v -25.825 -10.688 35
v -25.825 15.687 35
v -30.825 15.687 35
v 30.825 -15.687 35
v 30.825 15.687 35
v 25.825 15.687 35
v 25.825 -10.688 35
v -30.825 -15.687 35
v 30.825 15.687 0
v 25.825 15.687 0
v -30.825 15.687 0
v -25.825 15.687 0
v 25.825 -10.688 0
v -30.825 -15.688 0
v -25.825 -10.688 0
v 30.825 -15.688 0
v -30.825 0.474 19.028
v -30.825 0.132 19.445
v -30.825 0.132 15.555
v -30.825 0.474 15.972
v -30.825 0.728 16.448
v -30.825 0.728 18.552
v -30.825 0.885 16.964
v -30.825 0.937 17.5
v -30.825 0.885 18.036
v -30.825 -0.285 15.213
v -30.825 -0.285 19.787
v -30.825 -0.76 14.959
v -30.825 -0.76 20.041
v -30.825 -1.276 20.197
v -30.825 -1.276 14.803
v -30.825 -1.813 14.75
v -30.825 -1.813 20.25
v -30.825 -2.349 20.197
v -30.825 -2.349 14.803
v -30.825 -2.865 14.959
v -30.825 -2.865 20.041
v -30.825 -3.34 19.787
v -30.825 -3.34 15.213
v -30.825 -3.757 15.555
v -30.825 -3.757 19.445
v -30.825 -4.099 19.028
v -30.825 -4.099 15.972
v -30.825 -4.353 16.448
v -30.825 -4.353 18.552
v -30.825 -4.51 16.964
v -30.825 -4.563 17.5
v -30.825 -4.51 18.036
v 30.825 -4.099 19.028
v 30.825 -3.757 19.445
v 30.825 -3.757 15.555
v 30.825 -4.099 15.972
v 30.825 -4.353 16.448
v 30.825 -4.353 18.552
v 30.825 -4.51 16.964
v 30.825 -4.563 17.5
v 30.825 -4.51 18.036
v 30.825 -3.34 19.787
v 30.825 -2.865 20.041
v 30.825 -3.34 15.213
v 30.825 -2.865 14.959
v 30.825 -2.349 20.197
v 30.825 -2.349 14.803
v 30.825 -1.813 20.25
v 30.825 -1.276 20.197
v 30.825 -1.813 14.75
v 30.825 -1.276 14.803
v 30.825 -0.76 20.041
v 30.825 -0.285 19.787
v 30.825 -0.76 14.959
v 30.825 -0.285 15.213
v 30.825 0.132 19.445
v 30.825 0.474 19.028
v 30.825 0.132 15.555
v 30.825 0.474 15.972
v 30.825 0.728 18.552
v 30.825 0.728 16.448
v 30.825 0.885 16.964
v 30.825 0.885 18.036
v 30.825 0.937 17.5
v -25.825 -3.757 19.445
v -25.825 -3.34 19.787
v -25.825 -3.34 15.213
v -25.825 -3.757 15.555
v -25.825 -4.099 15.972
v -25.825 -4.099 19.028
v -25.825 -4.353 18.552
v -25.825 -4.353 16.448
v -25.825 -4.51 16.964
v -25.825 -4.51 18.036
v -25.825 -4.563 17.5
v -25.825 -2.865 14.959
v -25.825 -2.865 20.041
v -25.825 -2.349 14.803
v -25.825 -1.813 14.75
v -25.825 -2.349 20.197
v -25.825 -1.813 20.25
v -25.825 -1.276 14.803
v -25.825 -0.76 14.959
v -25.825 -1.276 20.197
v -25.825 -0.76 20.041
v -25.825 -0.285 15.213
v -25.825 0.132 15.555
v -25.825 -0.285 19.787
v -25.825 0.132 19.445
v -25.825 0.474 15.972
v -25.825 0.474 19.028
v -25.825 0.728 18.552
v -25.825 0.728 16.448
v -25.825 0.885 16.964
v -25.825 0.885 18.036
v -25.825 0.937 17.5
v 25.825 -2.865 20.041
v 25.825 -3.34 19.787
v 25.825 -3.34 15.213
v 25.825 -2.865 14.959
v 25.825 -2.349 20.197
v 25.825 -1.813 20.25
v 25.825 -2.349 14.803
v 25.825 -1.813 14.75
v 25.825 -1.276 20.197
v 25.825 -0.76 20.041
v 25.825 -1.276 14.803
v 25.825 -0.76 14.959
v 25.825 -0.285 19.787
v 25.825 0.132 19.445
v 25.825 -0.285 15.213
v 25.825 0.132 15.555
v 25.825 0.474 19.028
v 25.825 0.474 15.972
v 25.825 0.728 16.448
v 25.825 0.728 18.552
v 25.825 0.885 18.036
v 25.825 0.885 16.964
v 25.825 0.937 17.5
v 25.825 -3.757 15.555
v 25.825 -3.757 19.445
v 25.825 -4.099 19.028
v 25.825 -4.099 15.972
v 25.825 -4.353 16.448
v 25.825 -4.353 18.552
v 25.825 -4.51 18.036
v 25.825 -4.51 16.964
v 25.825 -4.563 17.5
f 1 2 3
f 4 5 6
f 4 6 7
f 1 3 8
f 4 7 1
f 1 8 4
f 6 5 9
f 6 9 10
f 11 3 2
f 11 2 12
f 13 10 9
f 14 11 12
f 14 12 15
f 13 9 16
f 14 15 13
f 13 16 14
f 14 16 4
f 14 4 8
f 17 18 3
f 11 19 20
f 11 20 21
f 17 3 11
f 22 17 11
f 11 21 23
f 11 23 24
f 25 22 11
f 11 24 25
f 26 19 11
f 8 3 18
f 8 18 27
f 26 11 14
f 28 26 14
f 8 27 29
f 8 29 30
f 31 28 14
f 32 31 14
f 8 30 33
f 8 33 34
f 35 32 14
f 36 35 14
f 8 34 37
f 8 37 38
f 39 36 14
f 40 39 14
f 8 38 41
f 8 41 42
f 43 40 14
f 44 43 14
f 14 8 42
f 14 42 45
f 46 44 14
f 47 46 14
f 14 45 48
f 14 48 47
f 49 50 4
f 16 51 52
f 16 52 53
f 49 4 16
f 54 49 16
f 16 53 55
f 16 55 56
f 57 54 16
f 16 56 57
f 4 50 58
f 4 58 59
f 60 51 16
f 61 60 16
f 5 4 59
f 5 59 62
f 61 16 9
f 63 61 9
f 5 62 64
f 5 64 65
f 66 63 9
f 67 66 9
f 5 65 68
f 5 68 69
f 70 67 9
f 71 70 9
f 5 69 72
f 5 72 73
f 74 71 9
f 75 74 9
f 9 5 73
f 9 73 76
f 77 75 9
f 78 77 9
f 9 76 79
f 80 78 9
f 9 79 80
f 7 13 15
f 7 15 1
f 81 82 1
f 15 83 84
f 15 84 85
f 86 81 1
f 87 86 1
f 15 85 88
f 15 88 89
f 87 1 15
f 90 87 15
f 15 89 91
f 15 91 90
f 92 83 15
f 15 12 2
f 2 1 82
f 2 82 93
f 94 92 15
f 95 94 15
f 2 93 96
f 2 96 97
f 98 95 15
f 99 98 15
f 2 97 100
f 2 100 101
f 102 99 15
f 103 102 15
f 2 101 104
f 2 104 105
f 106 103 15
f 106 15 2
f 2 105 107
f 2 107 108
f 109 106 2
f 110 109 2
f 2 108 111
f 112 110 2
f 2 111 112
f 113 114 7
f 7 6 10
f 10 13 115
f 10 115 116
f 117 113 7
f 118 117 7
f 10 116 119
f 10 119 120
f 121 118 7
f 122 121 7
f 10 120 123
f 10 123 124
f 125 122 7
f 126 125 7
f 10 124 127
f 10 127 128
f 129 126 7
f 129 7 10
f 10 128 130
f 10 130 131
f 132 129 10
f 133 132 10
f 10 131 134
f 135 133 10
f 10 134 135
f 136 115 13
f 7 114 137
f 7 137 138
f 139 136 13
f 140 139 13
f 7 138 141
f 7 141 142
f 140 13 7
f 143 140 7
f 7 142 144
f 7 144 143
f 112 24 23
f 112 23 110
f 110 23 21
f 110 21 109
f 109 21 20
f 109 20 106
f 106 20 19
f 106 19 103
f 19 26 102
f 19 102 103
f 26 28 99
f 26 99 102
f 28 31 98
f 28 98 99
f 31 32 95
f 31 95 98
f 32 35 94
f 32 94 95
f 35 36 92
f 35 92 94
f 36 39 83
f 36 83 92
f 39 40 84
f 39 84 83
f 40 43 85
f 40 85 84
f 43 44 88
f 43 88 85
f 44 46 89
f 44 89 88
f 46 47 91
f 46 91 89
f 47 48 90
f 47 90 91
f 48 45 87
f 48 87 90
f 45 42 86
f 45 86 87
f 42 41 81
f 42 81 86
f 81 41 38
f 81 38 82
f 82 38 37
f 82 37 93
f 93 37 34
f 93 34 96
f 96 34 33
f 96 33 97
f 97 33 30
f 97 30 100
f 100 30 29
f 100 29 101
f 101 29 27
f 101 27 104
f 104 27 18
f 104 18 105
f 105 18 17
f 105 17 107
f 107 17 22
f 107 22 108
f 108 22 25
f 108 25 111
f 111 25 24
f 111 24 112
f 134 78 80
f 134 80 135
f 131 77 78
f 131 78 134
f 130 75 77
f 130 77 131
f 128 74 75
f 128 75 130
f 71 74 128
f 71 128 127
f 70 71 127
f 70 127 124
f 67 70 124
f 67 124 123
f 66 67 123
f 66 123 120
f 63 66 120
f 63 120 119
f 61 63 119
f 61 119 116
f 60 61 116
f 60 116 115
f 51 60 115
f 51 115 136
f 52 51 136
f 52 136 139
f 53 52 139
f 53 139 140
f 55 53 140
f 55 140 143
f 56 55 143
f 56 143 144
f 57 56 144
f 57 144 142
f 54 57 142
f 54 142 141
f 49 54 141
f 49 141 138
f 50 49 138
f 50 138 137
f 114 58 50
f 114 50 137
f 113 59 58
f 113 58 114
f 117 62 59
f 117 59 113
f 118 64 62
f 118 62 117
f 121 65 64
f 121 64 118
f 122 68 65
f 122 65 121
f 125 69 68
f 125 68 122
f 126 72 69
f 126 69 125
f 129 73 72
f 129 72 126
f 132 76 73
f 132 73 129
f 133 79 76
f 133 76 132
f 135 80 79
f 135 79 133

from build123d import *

# Parameters (mm, degrees)
SKETCH1_W           = 61.65
SKETCH1_H           = 31.375
BOSS_EXTRUDE1_DEPTH = 35
SKETCH2_W           = 51.65
SKETCH2_H           = 26.375
CUT_EXTRUDE1_DEPTH  = 50.206486171
SKETCH3_R           = 2.75
CUT_EXTRUDE2_DEPTH  = 73.607300984


with BuildPart() as part:
    # Sketch1 → Boss-Extrude1 (new body)
    with BuildSketch(Plane.XY):
        Rectangle(SKETCH1_W, SKETCH1_H)
    extrude(amount=BOSS_EXTRUDE1_DEPTH)

    # Sketch2 → Cut-Extrude1 (cut, through all)
    with BuildSketch(Plane(origin=(0, 0, 0), x_dir=(-1, 0, 0), z_dir=(0, 0, -1))):
        with Locations((0, 2.5)):
            Rectangle(SKETCH2_W, SKETCH2_H)
    extrude(amount=-CUT_EXTRUDE1_DEPTH, mode=Mode.SUBTRACT)

    # Sketch3 → Cut-Extrude2 (cut, through all)
    with BuildSketch(Plane(origin=(30.825, 0, 0), x_dir=(0, 0, -1), z_dir=(1, 0, 0))):
        with Locations((-17.5, -1.8125)):
            Circle(SKETCH3_R)
    extrude(amount=-CUT_EXTRUDE2_DEPTH, mode=Mode.SUBTRACT)


solid = part.part
